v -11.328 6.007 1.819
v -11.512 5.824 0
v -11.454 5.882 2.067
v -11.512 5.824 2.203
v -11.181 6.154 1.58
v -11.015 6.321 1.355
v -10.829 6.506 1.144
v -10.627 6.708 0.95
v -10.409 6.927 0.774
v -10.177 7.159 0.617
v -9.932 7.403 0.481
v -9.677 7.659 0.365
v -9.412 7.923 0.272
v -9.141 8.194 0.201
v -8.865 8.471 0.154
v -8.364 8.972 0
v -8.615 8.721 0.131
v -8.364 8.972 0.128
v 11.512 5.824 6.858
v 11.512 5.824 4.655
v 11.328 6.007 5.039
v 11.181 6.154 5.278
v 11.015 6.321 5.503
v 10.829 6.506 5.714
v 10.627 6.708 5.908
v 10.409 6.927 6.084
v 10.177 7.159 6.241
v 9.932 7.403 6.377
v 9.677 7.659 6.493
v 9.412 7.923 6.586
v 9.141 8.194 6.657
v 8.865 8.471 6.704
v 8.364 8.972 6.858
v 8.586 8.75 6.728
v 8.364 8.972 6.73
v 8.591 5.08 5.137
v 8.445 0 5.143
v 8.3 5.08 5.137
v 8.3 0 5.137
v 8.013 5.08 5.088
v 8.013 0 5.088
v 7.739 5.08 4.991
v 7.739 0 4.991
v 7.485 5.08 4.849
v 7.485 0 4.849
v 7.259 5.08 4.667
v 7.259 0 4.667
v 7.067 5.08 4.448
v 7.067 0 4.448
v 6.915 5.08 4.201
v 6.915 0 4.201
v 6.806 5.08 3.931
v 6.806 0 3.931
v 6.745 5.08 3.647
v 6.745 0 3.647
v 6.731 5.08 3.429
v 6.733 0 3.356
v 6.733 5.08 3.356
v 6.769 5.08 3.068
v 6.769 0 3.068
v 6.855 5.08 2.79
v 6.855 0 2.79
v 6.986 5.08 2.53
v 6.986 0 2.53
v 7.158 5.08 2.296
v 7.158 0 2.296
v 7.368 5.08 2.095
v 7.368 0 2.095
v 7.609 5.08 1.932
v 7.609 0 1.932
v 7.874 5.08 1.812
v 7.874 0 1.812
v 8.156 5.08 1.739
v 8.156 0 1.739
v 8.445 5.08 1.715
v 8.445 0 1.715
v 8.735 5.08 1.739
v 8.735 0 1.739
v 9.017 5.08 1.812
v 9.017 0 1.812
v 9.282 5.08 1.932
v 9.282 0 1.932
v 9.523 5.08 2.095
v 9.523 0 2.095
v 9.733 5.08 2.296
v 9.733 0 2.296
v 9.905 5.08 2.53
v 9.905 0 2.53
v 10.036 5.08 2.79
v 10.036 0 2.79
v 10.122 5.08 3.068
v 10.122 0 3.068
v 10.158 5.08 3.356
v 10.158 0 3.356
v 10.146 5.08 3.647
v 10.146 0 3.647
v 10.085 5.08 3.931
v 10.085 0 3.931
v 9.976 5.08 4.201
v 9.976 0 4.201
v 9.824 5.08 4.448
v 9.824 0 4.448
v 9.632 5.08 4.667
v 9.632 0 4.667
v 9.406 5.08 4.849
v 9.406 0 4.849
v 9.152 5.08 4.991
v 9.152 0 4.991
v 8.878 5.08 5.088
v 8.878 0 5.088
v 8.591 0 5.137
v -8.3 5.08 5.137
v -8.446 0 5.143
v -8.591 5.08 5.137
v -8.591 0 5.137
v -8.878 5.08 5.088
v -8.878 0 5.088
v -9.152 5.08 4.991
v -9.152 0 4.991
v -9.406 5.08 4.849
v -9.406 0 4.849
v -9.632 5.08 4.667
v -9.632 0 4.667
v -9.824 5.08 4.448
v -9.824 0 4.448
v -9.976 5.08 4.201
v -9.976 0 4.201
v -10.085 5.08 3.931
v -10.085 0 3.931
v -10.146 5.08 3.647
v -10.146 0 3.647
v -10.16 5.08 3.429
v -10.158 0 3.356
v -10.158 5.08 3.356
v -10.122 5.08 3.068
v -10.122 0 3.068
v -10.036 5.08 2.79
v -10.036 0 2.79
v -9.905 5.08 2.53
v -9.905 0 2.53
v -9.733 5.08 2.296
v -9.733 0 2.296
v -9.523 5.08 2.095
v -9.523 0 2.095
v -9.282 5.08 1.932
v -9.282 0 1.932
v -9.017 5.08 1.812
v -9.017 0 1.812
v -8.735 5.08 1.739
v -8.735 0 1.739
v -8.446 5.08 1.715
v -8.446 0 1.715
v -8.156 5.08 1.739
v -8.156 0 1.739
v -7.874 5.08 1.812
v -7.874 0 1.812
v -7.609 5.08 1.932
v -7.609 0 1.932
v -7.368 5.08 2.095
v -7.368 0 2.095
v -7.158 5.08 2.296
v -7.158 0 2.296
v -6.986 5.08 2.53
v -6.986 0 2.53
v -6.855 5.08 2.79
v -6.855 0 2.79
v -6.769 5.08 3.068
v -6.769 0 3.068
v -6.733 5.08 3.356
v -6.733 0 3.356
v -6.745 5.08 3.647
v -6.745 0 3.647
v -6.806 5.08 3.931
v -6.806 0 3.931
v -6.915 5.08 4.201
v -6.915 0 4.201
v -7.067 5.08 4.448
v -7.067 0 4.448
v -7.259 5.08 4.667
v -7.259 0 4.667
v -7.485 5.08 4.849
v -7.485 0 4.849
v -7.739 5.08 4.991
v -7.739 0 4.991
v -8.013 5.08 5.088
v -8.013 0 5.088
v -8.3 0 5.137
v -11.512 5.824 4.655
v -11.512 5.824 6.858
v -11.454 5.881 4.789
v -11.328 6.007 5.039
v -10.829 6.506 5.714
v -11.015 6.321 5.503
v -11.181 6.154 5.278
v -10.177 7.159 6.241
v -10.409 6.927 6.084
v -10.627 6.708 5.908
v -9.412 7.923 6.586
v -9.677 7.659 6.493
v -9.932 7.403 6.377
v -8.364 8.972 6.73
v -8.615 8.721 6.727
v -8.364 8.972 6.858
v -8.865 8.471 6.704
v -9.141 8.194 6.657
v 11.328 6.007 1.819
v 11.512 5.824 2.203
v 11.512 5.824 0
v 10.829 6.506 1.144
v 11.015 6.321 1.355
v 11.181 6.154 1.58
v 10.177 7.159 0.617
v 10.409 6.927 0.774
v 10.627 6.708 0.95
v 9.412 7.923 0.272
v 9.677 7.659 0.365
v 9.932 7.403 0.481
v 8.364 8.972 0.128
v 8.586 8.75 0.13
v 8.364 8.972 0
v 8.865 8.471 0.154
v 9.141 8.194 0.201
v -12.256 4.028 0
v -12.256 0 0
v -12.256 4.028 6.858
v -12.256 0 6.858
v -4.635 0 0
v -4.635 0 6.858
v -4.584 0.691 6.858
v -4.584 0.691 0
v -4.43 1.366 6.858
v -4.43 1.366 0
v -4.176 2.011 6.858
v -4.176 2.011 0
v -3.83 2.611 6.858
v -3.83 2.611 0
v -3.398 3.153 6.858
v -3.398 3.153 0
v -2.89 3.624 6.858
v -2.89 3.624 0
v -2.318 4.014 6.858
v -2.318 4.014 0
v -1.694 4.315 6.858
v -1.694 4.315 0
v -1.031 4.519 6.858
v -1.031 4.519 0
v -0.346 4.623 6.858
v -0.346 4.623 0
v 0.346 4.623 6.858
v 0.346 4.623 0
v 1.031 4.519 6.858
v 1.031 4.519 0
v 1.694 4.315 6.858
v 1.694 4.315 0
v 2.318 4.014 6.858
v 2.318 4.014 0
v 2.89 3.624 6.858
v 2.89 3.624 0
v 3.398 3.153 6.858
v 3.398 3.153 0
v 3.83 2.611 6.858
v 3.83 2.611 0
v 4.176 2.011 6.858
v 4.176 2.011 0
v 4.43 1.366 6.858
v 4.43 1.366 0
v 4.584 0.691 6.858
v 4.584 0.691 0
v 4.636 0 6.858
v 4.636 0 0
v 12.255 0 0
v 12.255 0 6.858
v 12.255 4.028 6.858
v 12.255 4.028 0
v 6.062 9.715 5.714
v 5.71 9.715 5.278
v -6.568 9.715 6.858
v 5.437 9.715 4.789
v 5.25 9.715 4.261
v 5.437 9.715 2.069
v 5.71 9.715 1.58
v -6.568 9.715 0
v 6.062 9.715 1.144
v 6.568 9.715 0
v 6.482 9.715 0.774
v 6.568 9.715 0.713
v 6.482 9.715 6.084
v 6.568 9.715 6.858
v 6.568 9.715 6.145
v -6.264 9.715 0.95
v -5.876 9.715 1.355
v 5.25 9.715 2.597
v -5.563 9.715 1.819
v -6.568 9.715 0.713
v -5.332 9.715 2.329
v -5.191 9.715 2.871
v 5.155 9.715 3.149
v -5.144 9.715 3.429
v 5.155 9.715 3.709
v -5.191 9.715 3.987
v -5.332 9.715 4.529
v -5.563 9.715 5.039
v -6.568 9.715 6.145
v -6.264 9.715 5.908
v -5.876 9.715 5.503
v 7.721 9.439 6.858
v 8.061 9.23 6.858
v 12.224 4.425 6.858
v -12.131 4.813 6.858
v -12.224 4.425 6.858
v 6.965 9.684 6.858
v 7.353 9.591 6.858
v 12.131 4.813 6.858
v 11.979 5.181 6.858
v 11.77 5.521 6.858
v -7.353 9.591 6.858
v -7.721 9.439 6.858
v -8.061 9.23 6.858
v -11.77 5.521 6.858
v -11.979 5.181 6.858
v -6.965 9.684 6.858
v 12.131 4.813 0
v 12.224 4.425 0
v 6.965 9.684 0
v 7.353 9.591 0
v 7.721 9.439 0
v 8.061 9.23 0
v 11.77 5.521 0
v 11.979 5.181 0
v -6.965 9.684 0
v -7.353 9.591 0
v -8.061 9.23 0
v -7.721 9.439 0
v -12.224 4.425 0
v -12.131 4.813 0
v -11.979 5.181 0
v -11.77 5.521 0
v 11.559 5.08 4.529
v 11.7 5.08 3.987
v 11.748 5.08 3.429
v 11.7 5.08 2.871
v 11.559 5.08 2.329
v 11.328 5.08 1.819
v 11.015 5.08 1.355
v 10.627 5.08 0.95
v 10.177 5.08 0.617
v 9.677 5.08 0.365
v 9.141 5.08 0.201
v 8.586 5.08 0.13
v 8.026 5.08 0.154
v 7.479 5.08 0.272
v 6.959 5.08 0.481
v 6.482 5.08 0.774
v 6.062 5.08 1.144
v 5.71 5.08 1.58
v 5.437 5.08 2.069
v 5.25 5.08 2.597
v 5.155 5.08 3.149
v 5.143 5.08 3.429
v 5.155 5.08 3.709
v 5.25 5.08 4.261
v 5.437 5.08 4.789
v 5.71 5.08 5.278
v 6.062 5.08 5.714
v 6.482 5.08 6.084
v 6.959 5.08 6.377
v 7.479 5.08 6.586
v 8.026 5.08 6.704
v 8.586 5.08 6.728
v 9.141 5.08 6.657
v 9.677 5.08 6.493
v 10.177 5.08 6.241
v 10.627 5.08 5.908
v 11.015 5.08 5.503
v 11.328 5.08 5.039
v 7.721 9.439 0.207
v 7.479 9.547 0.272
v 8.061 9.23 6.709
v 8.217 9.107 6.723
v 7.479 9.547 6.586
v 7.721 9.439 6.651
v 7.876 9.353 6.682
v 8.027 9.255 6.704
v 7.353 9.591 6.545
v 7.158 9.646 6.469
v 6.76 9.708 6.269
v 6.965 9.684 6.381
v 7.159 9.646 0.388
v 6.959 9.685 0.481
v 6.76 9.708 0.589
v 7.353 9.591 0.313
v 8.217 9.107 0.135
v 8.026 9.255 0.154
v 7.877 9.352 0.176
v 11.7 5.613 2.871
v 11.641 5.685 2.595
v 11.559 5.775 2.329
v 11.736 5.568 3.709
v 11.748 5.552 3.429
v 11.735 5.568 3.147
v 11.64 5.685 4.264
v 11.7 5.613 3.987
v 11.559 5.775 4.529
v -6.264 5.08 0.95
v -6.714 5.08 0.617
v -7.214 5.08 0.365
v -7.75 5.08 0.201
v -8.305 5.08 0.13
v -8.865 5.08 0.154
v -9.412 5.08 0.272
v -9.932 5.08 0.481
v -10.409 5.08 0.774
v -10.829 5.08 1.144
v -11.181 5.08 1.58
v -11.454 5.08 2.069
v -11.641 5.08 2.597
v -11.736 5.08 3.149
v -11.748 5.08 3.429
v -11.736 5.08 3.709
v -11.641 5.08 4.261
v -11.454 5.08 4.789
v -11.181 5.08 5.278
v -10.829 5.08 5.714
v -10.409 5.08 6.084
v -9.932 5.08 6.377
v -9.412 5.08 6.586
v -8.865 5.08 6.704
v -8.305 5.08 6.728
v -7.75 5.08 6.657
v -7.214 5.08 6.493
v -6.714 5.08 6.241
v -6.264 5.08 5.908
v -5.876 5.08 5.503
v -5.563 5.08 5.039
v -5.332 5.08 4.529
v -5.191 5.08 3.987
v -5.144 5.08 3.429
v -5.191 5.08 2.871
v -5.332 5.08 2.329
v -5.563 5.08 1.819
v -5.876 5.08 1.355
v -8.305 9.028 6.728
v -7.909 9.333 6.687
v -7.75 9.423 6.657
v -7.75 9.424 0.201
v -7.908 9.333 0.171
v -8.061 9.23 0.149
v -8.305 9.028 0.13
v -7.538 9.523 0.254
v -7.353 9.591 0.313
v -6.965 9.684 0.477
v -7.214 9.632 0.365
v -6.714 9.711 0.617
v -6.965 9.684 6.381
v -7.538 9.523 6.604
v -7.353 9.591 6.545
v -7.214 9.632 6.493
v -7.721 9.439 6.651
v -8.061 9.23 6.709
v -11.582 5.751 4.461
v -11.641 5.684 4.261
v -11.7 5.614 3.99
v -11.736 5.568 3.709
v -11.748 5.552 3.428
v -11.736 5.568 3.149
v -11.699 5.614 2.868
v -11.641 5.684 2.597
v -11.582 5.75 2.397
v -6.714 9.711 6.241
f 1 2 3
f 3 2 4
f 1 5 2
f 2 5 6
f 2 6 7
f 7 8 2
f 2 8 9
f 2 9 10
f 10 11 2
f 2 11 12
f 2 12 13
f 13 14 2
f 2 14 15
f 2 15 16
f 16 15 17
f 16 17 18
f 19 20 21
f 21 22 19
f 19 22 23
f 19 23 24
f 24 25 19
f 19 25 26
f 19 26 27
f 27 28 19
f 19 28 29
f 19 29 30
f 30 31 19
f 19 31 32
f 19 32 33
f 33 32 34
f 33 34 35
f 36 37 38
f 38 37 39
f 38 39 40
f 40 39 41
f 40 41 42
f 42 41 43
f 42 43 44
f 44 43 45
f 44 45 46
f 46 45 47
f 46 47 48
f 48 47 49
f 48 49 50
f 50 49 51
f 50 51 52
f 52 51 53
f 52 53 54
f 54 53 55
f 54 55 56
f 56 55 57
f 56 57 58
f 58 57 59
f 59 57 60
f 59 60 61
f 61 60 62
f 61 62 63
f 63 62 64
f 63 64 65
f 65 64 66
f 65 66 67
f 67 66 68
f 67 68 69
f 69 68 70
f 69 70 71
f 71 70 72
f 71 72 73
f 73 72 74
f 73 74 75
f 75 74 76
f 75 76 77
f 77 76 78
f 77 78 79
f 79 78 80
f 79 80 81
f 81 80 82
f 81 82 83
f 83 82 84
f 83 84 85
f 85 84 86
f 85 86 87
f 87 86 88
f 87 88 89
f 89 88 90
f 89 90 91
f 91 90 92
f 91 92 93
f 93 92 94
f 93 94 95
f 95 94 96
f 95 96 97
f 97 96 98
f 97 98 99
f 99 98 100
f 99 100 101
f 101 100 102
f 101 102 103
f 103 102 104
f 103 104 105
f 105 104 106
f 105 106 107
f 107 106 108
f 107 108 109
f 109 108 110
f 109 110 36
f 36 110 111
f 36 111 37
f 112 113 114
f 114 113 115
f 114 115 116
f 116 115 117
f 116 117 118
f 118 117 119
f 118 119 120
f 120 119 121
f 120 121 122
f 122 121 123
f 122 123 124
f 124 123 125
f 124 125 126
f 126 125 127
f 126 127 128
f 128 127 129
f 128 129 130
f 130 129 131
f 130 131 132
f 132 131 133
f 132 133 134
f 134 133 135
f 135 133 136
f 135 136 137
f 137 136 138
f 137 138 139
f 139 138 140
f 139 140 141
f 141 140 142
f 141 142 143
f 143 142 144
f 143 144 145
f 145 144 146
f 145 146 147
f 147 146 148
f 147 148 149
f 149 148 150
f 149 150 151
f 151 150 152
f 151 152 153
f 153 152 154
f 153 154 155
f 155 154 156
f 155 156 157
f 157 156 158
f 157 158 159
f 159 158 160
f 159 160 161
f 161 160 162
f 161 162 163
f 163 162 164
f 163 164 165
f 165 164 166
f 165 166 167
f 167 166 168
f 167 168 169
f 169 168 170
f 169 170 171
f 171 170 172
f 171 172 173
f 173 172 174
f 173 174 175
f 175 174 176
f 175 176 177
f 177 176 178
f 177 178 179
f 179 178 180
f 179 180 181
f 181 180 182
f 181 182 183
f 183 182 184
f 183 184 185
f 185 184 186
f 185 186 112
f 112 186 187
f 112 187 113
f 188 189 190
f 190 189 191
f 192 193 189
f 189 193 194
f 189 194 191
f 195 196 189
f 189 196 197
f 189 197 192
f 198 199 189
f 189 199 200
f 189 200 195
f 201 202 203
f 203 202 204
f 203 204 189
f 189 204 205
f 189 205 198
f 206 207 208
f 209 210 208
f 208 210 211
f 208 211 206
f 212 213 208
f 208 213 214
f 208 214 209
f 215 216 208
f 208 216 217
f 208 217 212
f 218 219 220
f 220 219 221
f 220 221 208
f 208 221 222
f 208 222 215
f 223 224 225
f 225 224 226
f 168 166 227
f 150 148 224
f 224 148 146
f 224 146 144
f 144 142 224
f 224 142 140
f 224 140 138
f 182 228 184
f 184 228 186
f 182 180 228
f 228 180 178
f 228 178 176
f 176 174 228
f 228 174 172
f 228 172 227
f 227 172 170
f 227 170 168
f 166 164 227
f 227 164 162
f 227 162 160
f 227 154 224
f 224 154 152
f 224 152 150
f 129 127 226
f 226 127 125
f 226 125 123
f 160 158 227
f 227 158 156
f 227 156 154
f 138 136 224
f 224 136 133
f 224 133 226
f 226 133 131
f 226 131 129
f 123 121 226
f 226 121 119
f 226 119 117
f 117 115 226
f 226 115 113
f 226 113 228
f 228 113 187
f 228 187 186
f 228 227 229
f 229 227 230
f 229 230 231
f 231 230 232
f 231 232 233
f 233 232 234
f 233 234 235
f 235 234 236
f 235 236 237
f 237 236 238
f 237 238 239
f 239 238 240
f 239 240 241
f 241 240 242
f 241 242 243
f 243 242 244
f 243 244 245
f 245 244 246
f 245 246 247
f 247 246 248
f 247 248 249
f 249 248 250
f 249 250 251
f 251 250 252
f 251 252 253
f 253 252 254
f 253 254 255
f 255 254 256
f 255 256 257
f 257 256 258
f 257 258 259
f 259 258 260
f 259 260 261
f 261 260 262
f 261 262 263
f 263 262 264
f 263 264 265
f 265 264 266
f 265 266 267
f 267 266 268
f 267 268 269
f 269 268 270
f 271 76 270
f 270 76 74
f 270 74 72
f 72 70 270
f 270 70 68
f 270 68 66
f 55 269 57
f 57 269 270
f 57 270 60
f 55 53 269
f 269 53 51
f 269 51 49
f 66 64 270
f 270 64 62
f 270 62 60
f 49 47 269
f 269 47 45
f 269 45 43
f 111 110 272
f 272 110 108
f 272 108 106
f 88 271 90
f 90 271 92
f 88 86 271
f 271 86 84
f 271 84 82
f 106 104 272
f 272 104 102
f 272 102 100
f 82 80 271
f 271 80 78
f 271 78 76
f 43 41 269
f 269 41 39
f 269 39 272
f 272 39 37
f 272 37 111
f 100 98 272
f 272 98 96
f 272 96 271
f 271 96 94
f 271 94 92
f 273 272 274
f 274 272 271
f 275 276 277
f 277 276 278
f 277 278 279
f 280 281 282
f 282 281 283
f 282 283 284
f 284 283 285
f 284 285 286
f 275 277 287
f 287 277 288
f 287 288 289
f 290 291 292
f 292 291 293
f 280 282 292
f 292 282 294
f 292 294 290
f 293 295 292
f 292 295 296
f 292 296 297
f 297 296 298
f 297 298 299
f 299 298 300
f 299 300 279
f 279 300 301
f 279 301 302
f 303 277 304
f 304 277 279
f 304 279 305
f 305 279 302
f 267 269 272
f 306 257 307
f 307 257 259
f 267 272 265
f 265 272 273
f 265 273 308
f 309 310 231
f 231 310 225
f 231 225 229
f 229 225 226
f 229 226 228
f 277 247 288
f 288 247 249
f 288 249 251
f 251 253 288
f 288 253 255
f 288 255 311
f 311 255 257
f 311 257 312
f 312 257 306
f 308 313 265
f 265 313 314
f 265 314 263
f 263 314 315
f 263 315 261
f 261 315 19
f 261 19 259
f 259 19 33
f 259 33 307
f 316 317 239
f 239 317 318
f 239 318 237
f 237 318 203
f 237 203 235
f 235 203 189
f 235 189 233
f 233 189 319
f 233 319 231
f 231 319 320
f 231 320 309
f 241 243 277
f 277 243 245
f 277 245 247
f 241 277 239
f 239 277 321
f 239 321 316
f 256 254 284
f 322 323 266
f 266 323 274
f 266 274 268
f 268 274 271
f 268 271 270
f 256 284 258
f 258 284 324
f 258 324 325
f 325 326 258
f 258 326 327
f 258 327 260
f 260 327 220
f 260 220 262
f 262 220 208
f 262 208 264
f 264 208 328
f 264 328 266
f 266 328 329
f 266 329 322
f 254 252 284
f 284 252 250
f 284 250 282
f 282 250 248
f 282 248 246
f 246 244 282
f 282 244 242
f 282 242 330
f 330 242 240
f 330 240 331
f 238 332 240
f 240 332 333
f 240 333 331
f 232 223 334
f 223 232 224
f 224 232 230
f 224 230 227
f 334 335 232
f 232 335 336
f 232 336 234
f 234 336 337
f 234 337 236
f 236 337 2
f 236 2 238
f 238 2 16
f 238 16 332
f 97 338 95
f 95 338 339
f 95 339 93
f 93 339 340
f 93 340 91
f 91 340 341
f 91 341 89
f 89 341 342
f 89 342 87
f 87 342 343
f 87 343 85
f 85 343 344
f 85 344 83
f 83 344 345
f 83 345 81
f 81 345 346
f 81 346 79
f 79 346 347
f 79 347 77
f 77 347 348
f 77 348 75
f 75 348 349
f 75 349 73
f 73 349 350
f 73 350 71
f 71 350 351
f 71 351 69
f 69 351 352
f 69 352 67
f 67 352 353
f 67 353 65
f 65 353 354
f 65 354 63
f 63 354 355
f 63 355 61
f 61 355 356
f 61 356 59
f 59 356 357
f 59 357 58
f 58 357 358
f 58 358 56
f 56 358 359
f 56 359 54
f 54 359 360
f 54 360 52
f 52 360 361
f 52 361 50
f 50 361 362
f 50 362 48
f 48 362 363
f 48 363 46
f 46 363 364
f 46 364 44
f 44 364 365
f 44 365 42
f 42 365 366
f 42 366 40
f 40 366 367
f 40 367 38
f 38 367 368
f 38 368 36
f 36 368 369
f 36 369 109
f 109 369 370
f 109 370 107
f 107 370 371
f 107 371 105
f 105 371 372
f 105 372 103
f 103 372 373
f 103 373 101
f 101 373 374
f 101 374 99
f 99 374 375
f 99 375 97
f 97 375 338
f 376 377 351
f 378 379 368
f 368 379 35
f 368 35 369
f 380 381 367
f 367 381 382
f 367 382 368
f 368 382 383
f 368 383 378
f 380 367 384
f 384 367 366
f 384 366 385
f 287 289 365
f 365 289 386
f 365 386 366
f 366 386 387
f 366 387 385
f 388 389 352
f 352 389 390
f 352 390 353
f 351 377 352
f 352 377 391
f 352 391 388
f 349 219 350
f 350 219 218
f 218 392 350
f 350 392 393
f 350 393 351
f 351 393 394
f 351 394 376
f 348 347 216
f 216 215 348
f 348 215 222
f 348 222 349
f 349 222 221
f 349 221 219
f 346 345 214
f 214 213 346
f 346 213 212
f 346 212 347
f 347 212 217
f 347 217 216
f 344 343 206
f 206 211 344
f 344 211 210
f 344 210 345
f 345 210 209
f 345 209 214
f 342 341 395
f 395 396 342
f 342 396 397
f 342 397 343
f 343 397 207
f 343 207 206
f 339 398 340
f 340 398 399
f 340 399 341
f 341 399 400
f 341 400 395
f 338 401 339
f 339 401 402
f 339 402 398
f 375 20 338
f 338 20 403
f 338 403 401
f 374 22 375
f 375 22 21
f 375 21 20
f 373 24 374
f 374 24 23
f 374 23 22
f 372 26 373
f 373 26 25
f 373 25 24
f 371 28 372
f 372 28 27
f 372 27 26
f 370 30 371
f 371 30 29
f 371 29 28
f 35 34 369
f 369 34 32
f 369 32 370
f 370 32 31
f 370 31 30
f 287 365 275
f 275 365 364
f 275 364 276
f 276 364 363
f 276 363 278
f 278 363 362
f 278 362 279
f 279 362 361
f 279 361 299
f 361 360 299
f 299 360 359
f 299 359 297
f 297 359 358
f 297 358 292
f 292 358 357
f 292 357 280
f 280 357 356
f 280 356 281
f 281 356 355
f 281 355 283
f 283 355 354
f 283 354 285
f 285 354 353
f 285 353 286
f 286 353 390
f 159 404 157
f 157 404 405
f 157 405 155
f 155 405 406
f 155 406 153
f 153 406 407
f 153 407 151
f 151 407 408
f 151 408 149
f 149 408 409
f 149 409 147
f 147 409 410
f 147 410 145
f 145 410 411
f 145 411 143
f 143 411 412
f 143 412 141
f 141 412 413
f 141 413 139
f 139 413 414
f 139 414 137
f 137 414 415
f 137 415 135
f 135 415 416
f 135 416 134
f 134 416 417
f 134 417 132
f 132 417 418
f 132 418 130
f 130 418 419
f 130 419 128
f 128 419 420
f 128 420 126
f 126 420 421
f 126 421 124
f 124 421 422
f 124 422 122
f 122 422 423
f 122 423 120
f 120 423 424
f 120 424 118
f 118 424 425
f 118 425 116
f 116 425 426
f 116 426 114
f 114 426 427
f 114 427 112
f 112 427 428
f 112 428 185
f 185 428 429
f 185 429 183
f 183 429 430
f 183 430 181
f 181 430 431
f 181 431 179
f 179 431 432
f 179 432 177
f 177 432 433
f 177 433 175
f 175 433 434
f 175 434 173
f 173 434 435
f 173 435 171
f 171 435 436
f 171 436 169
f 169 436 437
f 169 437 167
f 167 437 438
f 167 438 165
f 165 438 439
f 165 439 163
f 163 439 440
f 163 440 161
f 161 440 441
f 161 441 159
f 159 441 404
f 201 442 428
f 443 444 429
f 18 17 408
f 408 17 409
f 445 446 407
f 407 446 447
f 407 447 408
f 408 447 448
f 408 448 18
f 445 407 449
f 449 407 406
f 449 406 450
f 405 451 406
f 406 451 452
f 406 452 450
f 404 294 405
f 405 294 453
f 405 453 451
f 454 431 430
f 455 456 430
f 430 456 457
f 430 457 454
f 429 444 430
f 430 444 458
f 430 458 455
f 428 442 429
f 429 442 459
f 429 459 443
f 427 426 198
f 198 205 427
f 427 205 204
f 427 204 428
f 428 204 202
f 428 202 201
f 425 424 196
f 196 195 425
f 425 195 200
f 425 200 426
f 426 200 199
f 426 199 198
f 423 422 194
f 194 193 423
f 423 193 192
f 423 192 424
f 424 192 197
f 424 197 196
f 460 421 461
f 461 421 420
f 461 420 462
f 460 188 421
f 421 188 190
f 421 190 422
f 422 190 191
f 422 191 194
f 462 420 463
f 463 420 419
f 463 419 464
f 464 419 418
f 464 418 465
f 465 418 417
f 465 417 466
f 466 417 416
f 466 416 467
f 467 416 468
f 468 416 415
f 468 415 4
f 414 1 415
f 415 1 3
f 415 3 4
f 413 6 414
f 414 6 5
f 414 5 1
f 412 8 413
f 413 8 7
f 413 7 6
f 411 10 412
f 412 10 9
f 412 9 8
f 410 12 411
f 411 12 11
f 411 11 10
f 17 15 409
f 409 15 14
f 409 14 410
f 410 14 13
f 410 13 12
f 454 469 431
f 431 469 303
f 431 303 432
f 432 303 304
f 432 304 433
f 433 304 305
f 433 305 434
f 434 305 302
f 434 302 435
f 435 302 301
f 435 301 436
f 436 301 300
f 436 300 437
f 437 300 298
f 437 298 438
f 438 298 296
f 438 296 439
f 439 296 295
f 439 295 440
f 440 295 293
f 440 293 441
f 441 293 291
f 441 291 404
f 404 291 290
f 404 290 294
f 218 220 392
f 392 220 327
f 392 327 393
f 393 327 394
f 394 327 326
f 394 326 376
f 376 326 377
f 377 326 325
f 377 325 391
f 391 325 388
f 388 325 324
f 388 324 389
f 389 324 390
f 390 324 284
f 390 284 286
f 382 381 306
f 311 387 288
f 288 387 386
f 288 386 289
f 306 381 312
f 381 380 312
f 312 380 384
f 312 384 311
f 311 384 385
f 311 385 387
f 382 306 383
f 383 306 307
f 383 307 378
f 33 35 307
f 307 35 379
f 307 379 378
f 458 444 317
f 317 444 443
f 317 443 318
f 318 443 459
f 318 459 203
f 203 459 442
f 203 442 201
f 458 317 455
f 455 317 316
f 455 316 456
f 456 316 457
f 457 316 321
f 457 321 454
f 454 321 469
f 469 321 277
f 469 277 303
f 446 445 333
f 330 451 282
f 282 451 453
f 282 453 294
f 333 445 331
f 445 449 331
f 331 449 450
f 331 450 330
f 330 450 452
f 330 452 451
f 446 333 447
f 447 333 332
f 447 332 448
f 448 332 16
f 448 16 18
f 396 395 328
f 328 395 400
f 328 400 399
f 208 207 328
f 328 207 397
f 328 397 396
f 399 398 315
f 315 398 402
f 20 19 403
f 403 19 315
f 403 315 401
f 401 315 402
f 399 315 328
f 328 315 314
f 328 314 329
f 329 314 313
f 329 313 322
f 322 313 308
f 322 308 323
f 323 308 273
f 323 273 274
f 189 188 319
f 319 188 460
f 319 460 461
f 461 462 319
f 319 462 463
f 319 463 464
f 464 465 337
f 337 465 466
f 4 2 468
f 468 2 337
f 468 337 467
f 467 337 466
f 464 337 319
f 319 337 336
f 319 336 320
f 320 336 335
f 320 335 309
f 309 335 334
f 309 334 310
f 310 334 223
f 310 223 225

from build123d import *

# Parameters (mm, degrees)
BOSS_EXTRUDE1_DEPTH     = 6.858
CUT_EXTRUDE1_DEPTH      = 18.07689622
CUT_EXTRUDE1_DEPTH_BACK = 18.07689622
SKETCH3_R               = 1.7145
CUT_EXTRUDE2_DEPTH      = 18.07689622
SKETCH5_R               = 3.302
CUT_EXTRUDE3_DEPTH      = 15.934384629
FILLET1_R               = 2.54
FILLET2_R               = 2.54


with BuildPart() as part:
    # Sketch2 → Boss-Extrude1 (new body)
    with BuildSketch(Plane.XY):
        with BuildLine():
            Line((-12.2555, 9.7155), (12.2555, 9.7155))
            Line((12.2555, 9.7155), (12.2555, 0))
            Line((12.2555, 0), (4.6355, 0))
            ThreePointArc((4.6355, 0), (0, 4.6355), (-4.6355, 0))
            Line((-4.6355, 0), (-12.2555, 0))
            Line((-12.2555, 0), (-12.2555, 9.7155))
        make_face()
    extrude(amount=BOSS_EXTRUDE1_DEPTH)

    # Sketch3 → Cut-Extrude1 (cut, two sides: drawn at the far end of the back side and taken through both)
    with BuildSketch(Plane.XZ.offset(-CUT_EXTRUDE1_DEPTH_BACK)):
        with Locations(Location((-8.4455, 3.429, 0), (0, 0, 270))):
            Circle(SKETCH3_R)
        with Locations(Location((8.4455, 3.429, 0), (0, 0, 270))):
            Circle(SKETCH3_R)
    extrude(amount=CUT_EXTRUDE1_DEPTH + CUT_EXTRUDE1_DEPTH_BACK, mode=Mode.SUBTRACT)

    # Sketch4 → Cut-Extrude2 (cut, through all)
    with BuildSketch(Plane.XY.offset(6.858)):
        Polygon((-12.2555, 5.08), (-7.62, 9.7155), (-12.2555, 9.7155), align=None)
        Polygon((12.2555, 9.7155), (7.62, 9.7155), (12.2555, 5.08), align=None)
    extrude(amount=-CUT_EXTRUDE2_DEPTH, mode=Mode.SUBTRACT)

    # Sketch5 → Cut-Extrude3 (cut, through all)
    with BuildSketch(Plane(origin=(0, 5.08, 0), x_dir=(1, 0, 0), z_dir=(0, 1, 0))):
        with Locations(Location((-8.4455, -3.429, 0), (0, 0, 284.477512186))):
            Circle(SKETCH5_R)
        with Locations(Location((8.4455, -3.429, 0), (0, 0, 104.477512186))):
            Circle(SKETCH5_R)
    extrude(amount=CUT_EXTRUDE3_DEPTH, mode=Mode.SUBTRACT)

    # Fillet1
    # the kernel refuses this fillet: 2.54 mm, written as the material it takes off along each edge
    with BuildSketch(Plane(origin=(7.62, 9.7155, 2.862108369), x_dir=(0.707106781186544, -0.7071067811865508, 0), z_dir=(0, 0, -1)), Plane(origin=(7.62, 9.7155, 9.488256121), x_dir=(0.707106781186544, -0.7071067811865508, 0), z_dir=(0, 0, -1)), Plane(origin=(-7.62, 9.7155, 9.488256121), x_dir=(1, 0, 0), z_dir=(0, 0, -1)), Plane(origin=(-7.62, 9.7155, 2.862108369), x_dir=(1, 0, 0), z_dir=(0, 0, -1))) as fillet1_piece_1:
        with BuildLine():
            CenterArc((FILLET1_R * 0.414213562373, FILLET1_R), FILLET1_R, 225, 45)
            Line((-FILLET1_R * 0.292893218813, FILLET1_R * 0.292893218813), (0, 0))
            Line((0, 0), (FILLET1_R * 0.414213562373, 0))
        make_face()
    extrude(amount=5.49236449, mode=Mode.SUBTRACT)

    # Fillet2
    # the kernel refuses this fillet: 2.54 mm, written as the material it takes off along each edge
    with BuildSketch(Plane(origin=(-12.2555, 5.08, 9.488256121), x_dir=(0, -1, 0), z_dir=(0, 0, -1))) as fillet2_piece_1:
        with BuildLine():
            CenterArc((FILLET2_R * 0.414213562373, -FILLET2_R), FILLET2_R, 90, 45)
            Line((-FILLET2_R * 0.292893218813, -FILLET2_R * 0.292893218813), (0, 0))
            Line((0, 0), (FILLET2_R * 0.414213562373, 0))
        make_face()
    extrude(amount=12.118512242, mode=Mode.SUBTRACT)
    with BuildSketch(Plane(origin=(12.2555, 5.08, 9.488256121), x_dir=(0, -1, 0), z_dir=(0, 0, -1))) as fillet2_piece_2:
        with BuildLine():
            CenterArc((FILLET2_R * 0.414213562373, FILLET2_R), FILLET2_R, 225, 45)
            Line((-FILLET2_R * 0.292893218813, FILLET2_R * 0.292893218813), (0, 0))
            Line((0, 0), (FILLET2_R * 0.414213562373, 0))
        make_face()
    extrude(amount=12.118512242, mode=Mode.SUBTRACT)


solid = part.part
